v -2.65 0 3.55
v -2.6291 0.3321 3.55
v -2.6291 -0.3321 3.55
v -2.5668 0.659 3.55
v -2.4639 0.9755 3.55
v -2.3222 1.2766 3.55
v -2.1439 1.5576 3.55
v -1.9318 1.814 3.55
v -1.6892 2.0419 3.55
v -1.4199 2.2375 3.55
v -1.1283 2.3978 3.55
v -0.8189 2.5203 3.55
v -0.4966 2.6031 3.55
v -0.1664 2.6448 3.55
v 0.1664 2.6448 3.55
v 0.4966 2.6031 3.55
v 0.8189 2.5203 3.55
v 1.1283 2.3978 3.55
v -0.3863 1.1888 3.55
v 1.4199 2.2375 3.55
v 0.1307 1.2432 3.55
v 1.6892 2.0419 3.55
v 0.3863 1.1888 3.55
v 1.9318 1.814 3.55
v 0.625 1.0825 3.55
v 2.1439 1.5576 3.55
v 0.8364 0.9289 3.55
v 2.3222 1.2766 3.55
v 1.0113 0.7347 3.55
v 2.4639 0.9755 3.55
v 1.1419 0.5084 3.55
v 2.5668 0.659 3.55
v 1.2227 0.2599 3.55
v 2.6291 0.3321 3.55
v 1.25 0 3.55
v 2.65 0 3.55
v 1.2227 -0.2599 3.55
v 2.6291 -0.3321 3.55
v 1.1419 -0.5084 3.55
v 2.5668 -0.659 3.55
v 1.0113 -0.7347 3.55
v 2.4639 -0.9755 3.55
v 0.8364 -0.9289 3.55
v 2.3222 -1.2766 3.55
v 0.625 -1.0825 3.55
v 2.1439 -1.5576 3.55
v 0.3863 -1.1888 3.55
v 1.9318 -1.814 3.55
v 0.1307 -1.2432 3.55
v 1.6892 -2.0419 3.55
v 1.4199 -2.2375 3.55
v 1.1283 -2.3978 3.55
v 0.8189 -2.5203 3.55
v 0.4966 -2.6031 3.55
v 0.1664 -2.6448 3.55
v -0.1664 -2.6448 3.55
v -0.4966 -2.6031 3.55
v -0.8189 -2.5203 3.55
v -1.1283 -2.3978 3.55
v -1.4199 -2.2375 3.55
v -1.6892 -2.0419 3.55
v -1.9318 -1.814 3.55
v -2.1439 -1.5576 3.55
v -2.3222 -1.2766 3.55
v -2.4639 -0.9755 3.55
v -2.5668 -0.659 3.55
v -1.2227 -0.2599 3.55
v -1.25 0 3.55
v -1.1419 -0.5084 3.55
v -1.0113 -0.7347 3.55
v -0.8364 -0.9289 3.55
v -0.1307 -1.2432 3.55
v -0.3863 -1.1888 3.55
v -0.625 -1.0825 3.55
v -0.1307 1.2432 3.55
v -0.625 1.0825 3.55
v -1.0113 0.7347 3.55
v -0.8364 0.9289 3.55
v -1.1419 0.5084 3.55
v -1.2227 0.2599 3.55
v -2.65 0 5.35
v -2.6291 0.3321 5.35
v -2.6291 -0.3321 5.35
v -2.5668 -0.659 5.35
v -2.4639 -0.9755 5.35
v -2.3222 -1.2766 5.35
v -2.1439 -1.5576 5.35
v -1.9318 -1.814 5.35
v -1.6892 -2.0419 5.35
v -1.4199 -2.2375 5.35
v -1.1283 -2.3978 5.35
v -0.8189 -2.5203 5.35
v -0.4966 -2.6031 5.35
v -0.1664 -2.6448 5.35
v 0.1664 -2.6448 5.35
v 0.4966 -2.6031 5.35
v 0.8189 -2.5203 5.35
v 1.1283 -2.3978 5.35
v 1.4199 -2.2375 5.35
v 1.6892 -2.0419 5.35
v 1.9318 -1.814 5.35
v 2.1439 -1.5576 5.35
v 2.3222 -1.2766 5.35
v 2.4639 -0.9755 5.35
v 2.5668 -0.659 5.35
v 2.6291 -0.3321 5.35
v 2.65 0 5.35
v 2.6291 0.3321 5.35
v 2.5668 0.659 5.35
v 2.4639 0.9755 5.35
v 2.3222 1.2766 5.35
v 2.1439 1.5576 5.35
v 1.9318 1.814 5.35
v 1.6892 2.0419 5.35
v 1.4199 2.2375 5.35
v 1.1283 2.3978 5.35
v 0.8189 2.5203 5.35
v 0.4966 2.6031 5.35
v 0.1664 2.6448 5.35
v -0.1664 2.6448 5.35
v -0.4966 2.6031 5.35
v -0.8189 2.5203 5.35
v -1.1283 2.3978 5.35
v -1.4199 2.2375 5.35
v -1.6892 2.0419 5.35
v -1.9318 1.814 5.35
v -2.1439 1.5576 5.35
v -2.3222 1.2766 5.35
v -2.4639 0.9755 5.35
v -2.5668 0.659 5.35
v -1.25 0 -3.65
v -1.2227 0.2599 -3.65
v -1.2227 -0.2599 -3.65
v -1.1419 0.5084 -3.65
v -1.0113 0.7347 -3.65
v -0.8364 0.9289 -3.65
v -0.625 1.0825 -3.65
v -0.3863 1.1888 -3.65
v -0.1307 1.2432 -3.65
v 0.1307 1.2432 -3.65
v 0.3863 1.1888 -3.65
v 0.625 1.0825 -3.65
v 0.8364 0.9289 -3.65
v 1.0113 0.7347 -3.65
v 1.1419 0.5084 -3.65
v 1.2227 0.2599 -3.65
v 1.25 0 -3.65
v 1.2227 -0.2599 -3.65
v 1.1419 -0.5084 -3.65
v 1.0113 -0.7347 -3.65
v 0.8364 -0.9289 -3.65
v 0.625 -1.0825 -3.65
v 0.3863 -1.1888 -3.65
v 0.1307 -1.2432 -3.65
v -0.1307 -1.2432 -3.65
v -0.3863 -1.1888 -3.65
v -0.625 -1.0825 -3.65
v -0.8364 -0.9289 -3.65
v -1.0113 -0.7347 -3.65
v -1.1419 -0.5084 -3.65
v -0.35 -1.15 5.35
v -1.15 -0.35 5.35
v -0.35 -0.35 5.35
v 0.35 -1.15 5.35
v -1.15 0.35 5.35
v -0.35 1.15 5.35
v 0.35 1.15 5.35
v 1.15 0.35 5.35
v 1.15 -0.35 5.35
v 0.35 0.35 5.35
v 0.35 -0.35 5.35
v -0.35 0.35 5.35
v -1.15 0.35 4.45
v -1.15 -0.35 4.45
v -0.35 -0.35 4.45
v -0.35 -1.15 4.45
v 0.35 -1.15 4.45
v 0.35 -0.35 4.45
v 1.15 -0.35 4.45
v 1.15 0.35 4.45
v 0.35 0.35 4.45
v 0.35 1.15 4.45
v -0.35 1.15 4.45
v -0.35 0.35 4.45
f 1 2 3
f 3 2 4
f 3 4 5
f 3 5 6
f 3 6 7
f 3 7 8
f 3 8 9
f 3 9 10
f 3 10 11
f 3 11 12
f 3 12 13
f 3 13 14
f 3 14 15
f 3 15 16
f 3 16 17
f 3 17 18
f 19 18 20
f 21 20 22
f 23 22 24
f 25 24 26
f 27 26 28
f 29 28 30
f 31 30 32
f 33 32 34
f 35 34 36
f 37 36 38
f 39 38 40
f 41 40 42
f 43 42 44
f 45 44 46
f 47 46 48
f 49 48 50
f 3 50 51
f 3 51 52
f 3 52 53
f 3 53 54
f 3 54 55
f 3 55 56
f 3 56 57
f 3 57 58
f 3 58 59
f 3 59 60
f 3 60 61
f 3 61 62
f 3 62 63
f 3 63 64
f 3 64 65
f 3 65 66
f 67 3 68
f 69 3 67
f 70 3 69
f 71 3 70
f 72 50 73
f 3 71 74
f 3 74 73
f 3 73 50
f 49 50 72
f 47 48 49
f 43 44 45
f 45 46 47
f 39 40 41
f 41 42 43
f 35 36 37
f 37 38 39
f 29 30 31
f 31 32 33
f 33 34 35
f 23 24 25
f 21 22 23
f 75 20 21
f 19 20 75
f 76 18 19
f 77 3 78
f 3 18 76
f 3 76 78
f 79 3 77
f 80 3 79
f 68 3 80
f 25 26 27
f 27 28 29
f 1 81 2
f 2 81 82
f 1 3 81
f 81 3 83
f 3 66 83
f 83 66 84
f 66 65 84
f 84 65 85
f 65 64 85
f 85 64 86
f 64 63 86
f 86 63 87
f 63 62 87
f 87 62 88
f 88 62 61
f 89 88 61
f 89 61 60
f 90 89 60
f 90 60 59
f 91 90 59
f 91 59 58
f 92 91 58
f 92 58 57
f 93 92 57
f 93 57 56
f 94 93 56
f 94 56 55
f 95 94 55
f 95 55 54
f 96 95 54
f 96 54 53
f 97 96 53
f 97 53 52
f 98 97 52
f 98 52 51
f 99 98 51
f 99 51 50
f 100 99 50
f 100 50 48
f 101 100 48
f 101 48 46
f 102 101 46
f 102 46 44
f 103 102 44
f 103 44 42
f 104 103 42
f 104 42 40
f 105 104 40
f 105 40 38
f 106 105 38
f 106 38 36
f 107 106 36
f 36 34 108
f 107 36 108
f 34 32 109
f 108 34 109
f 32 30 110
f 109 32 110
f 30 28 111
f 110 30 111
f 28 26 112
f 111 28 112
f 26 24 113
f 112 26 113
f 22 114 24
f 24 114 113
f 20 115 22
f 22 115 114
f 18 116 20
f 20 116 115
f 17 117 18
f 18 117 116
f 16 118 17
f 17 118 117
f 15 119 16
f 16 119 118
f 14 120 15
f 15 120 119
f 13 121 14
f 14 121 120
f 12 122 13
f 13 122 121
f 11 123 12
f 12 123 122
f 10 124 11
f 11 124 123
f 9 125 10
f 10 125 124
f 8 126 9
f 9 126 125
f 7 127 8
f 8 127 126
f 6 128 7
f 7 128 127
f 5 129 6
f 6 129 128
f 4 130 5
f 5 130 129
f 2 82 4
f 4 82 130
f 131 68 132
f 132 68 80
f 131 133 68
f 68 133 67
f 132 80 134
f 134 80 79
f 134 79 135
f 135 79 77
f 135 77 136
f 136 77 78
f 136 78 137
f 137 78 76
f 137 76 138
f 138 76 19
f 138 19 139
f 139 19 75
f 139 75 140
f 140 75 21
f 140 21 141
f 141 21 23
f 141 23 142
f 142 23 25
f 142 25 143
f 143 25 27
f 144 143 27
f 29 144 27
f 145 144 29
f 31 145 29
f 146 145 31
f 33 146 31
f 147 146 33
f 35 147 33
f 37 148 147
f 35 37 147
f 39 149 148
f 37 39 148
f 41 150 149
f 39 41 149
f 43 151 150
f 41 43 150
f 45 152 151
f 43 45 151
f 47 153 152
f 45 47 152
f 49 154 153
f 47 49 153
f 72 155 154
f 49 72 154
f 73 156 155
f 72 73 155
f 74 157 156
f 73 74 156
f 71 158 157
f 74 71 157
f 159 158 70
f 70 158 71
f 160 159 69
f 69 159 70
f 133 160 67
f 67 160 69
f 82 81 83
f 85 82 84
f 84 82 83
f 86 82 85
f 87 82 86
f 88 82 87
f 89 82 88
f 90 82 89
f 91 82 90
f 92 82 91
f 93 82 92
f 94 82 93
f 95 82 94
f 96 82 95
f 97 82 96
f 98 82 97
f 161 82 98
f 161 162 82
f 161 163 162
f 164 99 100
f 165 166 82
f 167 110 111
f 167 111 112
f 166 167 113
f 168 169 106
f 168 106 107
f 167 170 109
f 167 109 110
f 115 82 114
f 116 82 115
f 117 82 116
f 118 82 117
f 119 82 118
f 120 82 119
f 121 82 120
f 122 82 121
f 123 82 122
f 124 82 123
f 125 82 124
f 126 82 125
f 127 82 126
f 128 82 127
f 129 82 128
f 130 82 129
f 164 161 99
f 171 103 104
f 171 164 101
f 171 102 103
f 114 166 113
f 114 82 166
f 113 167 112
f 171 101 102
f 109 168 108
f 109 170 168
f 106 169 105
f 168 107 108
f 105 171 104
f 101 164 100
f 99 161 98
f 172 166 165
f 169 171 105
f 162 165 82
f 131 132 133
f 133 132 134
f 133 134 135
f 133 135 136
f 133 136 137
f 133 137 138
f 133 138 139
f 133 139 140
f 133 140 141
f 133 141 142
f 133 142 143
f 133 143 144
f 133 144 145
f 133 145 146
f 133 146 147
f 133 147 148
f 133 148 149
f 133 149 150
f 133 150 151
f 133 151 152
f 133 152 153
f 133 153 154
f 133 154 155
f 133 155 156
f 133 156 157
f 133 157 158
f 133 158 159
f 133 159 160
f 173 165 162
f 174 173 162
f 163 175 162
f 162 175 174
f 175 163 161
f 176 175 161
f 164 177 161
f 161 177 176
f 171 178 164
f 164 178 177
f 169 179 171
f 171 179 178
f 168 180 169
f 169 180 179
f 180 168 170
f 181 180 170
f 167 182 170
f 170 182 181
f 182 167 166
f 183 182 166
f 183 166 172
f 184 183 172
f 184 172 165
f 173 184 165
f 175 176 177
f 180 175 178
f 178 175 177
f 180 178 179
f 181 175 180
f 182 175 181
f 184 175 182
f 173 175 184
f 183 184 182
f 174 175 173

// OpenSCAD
X = 0;
Y = 1;
Z = 2;


len = 7.3;
diam = 2.5;

head_diam = 5.3;
head_th = 1.8;

extra = 5;

cross_size = [2.3, 0.7, extra];

module cross()
{
  cube(cross_size, center = true);

  rotate([0,0,90])
    cube(cross_size, center = true);
}

module head()
{

  difference() {
    cylinder(r=head_diam/2, h = head_th, center = true, $fn=50);
    
    translate([0,0, cross_size[Z]/2])
      cross();
 }     

}


cylinder(r=diam/2, h = len, center = true, $fn=30);
translate([0,0,head_th/2 + len/2 -0.1])
head();
